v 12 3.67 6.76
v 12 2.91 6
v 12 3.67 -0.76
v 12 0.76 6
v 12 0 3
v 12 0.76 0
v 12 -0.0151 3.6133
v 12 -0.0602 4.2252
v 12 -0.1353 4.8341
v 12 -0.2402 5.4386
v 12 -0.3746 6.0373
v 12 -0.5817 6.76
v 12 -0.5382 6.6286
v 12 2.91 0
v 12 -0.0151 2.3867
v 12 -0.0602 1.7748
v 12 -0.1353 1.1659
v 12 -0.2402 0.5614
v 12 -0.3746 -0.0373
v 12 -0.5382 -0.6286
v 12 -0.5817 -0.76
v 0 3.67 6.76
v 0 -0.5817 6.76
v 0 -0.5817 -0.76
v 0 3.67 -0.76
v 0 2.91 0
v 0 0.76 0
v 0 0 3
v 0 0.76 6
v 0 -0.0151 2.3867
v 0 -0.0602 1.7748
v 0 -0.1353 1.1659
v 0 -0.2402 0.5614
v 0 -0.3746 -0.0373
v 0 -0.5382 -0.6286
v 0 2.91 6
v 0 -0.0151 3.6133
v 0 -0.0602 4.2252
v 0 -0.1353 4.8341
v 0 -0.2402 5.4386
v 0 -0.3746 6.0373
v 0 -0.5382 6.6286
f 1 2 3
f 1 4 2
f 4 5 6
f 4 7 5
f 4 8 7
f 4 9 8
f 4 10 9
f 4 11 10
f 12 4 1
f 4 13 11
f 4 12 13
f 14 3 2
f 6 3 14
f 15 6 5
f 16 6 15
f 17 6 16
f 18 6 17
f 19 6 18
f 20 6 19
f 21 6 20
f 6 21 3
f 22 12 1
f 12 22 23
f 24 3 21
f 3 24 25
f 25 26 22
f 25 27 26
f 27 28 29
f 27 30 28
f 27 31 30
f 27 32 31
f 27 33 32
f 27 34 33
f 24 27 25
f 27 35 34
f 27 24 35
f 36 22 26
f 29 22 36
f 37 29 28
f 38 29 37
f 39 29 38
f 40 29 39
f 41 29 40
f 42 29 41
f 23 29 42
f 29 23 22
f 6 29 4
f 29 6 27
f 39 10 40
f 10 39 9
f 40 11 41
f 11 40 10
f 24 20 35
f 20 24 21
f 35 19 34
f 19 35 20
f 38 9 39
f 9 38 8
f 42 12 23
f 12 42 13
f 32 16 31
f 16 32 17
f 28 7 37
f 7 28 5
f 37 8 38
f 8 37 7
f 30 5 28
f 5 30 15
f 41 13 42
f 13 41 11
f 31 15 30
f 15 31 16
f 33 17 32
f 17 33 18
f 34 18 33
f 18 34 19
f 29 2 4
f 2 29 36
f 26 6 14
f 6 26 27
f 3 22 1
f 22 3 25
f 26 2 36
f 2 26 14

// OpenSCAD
hallthick = 1.60;
hallheight = 6.0;
hallwidth = 4.0 + 1;

wallthick = .76;
wallthick2 = 1.51;

//mil = 0.254;

magnetthick = 1.75 + .4;

length = 12;

//cube([length, wallthick2, hallheight]); // "bottom"

guidesize=3;
guide_d = 25;
// channel outer wall

difference(){
translate([0,-guidesize,-wallthick])
cube([length, wallthick+guidesize, hallheight+wallthick*2]);
translate([-.5,-guide_d/2,hallheight/2])
rotate([0,90,0])
cylinder(d=guide_d, h=length+1, $fn=128);
}

//channel inner wall
translate([0,wallthick+magnetthick])
cube([length, wallthick, hallheight]);

//z=0 floor
translate([0,wallthick,-wallthick])
cube([length, wallthick+magnetthick, wallthick]);

//z=max cieling
translate([0,wallthick,hallheight])
cube([length, wallthick+magnetthick, wallthick]);

//translate([-wallthick-hallwidth+length/2,wallthick*1.5+magnetthick]){
// first hall endstop
//translate([0,0])
//cube([wallthick, hallthick, hallheight]);

//second hall stop
//translate([hallwidth,0])
//cube([wallthick+hallwidth*.1, hallthick, hallheight]);

// first hall triangles
//translate([wallthick, wallthick2]){
//    linear_extrude(hallheight)
//        polygon([[0,0],[0,hallthick/2],[hallthick/2,0]]);
//    translate([hallwidth-wallthick,0])
//        linear_extrude(hallheight)
//            polygon([[-hallthick/2,0],[0,hallthick/2],[0,0]]);
//}

//second hall triangles
//translate([hallwidth,0]){
//translate([wallthick, wallthick2]){
//    linear_extrude(hallheight)
//        polygon([[0,0],[0,hallthick/2],[hallthick/2,0]]);
//    translate([hallwidth*1.2-wallthick,0])
//        linear_extrude(hallheight)
//            polygon([[-hallthick/2,0],[0,hallthick/2],[0,0]]);
//}

//third end stop
//translate([hallwidth*1.1,0])
//translate([hallwidth,0])
//cube([wallthick, hallthick, hallheight]);

//translate([wallthick,0, hallheight-1])
//cube([hallwidth-wallthick, hallthick/2, 1]);

////translate([wallthick+hallwidth*1.1,0, hallheight-1])
//cube([hallwidth-wallthick, hallthick/2, 1]);
//}

module eyelet(){
translate([length/2,0,hallheight+wallthick*2]){

hull(){

translate([0,-wallthick/2,0])
rotate([-90,0,0])
cylinder(d=2, h=magnetthick+wallthick*2, $fn=64);
    
translate([-1, -wallthick/2,-1])
cube([2, magnetthick+wallthick*2, .1]);
    
}
    
}
}
